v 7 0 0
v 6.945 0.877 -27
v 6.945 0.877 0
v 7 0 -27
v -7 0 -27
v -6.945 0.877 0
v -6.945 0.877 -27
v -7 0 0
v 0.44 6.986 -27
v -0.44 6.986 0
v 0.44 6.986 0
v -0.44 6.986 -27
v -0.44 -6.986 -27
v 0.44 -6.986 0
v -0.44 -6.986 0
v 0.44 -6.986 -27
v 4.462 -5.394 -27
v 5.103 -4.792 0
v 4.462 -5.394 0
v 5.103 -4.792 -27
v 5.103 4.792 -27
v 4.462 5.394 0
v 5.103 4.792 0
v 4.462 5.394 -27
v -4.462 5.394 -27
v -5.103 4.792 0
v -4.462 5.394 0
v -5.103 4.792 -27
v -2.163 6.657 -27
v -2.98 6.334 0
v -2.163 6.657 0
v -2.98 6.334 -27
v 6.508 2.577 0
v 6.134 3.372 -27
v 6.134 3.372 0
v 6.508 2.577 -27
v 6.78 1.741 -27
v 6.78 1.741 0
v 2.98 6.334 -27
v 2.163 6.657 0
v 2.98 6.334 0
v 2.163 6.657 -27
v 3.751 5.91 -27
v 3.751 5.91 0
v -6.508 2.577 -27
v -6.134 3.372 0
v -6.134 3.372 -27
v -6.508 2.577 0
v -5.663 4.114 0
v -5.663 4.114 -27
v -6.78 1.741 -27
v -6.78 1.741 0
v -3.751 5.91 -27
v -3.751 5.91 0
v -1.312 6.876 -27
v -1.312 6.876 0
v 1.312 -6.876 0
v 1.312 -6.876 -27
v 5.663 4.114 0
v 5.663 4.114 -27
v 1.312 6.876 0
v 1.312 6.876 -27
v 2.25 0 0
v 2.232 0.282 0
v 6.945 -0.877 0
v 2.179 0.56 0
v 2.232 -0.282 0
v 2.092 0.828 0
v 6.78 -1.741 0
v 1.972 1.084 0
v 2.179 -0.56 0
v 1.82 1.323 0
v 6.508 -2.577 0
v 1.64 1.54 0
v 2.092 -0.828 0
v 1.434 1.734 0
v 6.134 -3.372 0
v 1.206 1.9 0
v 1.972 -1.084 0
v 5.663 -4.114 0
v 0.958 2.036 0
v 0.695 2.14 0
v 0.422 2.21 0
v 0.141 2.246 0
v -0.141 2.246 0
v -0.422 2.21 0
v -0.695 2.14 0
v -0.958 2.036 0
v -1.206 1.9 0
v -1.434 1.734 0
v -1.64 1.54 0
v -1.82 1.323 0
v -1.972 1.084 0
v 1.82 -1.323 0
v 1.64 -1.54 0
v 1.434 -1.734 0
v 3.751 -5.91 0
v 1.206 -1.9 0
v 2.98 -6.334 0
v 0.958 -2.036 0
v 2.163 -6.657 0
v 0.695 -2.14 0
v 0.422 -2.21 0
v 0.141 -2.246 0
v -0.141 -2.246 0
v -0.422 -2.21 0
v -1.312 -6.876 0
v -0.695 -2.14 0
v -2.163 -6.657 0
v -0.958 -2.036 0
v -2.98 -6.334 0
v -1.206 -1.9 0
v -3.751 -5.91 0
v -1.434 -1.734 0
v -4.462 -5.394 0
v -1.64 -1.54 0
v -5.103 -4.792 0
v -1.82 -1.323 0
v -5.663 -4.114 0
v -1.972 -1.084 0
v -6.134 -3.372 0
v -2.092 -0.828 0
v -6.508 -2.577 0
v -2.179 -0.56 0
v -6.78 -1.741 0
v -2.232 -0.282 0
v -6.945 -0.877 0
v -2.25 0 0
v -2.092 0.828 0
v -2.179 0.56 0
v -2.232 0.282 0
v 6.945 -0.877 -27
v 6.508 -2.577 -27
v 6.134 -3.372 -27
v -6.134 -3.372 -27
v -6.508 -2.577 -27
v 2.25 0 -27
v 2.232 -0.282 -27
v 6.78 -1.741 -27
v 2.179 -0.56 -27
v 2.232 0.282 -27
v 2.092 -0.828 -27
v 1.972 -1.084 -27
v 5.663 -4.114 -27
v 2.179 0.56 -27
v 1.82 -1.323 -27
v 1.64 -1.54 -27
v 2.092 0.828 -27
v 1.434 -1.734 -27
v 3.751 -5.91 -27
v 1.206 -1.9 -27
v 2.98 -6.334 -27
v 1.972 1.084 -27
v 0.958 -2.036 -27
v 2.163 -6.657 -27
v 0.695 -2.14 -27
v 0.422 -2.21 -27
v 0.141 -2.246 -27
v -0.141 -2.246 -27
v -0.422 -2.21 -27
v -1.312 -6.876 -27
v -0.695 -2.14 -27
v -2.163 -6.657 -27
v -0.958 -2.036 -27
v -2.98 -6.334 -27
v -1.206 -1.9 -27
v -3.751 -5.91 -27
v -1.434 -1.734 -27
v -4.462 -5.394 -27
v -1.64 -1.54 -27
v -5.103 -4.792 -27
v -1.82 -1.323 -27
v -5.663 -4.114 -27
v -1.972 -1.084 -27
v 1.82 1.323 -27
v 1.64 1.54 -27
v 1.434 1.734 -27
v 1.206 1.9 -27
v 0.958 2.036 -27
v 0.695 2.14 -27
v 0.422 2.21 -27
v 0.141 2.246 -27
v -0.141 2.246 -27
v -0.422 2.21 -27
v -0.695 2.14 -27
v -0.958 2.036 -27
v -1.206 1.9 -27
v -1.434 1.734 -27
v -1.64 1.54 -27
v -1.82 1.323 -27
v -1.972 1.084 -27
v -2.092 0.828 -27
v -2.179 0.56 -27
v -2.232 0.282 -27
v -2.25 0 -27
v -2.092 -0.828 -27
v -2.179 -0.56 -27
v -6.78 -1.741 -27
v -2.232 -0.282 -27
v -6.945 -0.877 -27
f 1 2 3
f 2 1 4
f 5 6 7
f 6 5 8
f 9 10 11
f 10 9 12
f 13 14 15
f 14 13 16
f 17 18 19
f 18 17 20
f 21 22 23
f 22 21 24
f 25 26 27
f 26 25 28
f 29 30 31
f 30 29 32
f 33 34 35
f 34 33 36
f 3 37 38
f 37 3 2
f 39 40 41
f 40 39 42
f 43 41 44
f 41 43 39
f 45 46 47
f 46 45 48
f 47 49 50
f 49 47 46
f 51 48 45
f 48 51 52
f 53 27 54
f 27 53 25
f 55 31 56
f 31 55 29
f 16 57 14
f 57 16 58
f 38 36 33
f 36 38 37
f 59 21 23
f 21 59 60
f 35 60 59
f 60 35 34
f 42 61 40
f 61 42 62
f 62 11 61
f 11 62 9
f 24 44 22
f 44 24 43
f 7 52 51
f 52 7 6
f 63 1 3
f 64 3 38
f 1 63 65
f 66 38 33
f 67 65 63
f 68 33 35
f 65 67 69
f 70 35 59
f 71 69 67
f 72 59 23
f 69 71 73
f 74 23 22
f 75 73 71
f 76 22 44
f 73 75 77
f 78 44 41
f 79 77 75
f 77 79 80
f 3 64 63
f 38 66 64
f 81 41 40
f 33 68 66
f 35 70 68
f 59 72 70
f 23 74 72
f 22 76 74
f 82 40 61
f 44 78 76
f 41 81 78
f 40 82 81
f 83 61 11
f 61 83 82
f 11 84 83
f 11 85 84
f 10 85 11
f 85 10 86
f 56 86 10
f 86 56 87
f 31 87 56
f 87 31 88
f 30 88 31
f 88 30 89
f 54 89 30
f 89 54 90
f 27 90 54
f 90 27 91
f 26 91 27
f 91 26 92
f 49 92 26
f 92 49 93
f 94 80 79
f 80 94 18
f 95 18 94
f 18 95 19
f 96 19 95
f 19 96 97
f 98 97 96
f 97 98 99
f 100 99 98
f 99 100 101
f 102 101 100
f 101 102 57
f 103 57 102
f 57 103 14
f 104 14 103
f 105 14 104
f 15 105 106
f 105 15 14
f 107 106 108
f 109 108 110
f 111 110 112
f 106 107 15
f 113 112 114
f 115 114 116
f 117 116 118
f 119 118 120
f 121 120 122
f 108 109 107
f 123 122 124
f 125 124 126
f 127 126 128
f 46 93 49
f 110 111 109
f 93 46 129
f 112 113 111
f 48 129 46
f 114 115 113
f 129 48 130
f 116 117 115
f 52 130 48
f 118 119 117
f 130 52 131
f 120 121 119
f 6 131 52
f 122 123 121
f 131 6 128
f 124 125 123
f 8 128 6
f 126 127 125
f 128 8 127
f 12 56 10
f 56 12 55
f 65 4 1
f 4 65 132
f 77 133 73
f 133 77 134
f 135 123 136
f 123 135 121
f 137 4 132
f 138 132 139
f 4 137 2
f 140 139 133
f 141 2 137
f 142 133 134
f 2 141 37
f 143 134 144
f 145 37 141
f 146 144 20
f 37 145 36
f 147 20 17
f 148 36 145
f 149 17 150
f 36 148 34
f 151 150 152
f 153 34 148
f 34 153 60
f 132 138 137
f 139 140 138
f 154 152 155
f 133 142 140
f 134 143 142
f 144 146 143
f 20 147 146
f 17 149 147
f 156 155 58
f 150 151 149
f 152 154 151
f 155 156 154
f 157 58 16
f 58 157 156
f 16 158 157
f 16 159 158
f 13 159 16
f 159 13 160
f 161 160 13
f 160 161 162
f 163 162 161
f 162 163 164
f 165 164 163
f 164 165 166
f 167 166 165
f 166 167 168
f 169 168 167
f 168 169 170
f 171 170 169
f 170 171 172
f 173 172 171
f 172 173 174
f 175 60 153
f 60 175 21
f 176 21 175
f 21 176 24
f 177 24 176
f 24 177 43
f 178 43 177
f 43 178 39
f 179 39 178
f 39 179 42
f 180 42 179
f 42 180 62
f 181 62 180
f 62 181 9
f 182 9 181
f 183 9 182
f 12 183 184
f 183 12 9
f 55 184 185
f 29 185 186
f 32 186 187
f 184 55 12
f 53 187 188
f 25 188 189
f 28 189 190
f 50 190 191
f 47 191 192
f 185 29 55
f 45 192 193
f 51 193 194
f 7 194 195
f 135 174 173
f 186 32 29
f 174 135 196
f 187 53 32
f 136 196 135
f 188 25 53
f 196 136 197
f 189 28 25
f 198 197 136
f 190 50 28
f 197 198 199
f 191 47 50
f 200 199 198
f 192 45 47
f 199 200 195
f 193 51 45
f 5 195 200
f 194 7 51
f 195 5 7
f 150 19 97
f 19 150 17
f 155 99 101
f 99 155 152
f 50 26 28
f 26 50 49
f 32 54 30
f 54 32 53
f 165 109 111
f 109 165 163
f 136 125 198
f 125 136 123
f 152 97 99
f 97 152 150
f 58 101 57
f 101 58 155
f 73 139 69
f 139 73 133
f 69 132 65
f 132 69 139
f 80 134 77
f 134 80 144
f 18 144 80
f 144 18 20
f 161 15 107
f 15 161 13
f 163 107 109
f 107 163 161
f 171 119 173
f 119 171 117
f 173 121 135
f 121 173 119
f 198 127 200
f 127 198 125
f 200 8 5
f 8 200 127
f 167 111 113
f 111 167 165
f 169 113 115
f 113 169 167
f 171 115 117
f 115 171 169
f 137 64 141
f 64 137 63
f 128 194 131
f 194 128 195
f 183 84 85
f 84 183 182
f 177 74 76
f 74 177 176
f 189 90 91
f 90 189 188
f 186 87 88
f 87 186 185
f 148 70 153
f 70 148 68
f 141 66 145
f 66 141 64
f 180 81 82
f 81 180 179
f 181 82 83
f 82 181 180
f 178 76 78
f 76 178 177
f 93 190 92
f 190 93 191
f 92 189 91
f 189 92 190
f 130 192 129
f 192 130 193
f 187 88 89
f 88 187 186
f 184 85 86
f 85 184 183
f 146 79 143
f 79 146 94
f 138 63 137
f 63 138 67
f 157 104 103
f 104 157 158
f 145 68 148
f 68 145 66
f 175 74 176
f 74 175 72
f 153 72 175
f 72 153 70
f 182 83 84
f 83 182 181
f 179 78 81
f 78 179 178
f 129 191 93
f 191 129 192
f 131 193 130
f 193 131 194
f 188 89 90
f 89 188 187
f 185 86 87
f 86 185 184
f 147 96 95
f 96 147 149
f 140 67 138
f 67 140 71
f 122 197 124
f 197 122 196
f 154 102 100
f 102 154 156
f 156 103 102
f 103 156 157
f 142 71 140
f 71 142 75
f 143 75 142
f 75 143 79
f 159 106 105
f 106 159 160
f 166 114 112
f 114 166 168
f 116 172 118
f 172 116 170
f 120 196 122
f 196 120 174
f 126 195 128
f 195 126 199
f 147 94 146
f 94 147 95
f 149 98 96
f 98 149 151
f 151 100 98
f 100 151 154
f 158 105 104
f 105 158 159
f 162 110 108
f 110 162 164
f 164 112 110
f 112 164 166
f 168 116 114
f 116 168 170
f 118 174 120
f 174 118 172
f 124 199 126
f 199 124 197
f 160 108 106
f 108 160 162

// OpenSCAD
$fn = 50;


difference() {
	union() {
		translate(v = [0, 0, -27.0000000000]) {
			cylinder(h = 27, r = 7.0000000000);
		}
	}
	union() {
		#translate(v = [0, 0, -27]) {
			cylinder(h = 27, r = 2.2500000000);
		}
	}
}
